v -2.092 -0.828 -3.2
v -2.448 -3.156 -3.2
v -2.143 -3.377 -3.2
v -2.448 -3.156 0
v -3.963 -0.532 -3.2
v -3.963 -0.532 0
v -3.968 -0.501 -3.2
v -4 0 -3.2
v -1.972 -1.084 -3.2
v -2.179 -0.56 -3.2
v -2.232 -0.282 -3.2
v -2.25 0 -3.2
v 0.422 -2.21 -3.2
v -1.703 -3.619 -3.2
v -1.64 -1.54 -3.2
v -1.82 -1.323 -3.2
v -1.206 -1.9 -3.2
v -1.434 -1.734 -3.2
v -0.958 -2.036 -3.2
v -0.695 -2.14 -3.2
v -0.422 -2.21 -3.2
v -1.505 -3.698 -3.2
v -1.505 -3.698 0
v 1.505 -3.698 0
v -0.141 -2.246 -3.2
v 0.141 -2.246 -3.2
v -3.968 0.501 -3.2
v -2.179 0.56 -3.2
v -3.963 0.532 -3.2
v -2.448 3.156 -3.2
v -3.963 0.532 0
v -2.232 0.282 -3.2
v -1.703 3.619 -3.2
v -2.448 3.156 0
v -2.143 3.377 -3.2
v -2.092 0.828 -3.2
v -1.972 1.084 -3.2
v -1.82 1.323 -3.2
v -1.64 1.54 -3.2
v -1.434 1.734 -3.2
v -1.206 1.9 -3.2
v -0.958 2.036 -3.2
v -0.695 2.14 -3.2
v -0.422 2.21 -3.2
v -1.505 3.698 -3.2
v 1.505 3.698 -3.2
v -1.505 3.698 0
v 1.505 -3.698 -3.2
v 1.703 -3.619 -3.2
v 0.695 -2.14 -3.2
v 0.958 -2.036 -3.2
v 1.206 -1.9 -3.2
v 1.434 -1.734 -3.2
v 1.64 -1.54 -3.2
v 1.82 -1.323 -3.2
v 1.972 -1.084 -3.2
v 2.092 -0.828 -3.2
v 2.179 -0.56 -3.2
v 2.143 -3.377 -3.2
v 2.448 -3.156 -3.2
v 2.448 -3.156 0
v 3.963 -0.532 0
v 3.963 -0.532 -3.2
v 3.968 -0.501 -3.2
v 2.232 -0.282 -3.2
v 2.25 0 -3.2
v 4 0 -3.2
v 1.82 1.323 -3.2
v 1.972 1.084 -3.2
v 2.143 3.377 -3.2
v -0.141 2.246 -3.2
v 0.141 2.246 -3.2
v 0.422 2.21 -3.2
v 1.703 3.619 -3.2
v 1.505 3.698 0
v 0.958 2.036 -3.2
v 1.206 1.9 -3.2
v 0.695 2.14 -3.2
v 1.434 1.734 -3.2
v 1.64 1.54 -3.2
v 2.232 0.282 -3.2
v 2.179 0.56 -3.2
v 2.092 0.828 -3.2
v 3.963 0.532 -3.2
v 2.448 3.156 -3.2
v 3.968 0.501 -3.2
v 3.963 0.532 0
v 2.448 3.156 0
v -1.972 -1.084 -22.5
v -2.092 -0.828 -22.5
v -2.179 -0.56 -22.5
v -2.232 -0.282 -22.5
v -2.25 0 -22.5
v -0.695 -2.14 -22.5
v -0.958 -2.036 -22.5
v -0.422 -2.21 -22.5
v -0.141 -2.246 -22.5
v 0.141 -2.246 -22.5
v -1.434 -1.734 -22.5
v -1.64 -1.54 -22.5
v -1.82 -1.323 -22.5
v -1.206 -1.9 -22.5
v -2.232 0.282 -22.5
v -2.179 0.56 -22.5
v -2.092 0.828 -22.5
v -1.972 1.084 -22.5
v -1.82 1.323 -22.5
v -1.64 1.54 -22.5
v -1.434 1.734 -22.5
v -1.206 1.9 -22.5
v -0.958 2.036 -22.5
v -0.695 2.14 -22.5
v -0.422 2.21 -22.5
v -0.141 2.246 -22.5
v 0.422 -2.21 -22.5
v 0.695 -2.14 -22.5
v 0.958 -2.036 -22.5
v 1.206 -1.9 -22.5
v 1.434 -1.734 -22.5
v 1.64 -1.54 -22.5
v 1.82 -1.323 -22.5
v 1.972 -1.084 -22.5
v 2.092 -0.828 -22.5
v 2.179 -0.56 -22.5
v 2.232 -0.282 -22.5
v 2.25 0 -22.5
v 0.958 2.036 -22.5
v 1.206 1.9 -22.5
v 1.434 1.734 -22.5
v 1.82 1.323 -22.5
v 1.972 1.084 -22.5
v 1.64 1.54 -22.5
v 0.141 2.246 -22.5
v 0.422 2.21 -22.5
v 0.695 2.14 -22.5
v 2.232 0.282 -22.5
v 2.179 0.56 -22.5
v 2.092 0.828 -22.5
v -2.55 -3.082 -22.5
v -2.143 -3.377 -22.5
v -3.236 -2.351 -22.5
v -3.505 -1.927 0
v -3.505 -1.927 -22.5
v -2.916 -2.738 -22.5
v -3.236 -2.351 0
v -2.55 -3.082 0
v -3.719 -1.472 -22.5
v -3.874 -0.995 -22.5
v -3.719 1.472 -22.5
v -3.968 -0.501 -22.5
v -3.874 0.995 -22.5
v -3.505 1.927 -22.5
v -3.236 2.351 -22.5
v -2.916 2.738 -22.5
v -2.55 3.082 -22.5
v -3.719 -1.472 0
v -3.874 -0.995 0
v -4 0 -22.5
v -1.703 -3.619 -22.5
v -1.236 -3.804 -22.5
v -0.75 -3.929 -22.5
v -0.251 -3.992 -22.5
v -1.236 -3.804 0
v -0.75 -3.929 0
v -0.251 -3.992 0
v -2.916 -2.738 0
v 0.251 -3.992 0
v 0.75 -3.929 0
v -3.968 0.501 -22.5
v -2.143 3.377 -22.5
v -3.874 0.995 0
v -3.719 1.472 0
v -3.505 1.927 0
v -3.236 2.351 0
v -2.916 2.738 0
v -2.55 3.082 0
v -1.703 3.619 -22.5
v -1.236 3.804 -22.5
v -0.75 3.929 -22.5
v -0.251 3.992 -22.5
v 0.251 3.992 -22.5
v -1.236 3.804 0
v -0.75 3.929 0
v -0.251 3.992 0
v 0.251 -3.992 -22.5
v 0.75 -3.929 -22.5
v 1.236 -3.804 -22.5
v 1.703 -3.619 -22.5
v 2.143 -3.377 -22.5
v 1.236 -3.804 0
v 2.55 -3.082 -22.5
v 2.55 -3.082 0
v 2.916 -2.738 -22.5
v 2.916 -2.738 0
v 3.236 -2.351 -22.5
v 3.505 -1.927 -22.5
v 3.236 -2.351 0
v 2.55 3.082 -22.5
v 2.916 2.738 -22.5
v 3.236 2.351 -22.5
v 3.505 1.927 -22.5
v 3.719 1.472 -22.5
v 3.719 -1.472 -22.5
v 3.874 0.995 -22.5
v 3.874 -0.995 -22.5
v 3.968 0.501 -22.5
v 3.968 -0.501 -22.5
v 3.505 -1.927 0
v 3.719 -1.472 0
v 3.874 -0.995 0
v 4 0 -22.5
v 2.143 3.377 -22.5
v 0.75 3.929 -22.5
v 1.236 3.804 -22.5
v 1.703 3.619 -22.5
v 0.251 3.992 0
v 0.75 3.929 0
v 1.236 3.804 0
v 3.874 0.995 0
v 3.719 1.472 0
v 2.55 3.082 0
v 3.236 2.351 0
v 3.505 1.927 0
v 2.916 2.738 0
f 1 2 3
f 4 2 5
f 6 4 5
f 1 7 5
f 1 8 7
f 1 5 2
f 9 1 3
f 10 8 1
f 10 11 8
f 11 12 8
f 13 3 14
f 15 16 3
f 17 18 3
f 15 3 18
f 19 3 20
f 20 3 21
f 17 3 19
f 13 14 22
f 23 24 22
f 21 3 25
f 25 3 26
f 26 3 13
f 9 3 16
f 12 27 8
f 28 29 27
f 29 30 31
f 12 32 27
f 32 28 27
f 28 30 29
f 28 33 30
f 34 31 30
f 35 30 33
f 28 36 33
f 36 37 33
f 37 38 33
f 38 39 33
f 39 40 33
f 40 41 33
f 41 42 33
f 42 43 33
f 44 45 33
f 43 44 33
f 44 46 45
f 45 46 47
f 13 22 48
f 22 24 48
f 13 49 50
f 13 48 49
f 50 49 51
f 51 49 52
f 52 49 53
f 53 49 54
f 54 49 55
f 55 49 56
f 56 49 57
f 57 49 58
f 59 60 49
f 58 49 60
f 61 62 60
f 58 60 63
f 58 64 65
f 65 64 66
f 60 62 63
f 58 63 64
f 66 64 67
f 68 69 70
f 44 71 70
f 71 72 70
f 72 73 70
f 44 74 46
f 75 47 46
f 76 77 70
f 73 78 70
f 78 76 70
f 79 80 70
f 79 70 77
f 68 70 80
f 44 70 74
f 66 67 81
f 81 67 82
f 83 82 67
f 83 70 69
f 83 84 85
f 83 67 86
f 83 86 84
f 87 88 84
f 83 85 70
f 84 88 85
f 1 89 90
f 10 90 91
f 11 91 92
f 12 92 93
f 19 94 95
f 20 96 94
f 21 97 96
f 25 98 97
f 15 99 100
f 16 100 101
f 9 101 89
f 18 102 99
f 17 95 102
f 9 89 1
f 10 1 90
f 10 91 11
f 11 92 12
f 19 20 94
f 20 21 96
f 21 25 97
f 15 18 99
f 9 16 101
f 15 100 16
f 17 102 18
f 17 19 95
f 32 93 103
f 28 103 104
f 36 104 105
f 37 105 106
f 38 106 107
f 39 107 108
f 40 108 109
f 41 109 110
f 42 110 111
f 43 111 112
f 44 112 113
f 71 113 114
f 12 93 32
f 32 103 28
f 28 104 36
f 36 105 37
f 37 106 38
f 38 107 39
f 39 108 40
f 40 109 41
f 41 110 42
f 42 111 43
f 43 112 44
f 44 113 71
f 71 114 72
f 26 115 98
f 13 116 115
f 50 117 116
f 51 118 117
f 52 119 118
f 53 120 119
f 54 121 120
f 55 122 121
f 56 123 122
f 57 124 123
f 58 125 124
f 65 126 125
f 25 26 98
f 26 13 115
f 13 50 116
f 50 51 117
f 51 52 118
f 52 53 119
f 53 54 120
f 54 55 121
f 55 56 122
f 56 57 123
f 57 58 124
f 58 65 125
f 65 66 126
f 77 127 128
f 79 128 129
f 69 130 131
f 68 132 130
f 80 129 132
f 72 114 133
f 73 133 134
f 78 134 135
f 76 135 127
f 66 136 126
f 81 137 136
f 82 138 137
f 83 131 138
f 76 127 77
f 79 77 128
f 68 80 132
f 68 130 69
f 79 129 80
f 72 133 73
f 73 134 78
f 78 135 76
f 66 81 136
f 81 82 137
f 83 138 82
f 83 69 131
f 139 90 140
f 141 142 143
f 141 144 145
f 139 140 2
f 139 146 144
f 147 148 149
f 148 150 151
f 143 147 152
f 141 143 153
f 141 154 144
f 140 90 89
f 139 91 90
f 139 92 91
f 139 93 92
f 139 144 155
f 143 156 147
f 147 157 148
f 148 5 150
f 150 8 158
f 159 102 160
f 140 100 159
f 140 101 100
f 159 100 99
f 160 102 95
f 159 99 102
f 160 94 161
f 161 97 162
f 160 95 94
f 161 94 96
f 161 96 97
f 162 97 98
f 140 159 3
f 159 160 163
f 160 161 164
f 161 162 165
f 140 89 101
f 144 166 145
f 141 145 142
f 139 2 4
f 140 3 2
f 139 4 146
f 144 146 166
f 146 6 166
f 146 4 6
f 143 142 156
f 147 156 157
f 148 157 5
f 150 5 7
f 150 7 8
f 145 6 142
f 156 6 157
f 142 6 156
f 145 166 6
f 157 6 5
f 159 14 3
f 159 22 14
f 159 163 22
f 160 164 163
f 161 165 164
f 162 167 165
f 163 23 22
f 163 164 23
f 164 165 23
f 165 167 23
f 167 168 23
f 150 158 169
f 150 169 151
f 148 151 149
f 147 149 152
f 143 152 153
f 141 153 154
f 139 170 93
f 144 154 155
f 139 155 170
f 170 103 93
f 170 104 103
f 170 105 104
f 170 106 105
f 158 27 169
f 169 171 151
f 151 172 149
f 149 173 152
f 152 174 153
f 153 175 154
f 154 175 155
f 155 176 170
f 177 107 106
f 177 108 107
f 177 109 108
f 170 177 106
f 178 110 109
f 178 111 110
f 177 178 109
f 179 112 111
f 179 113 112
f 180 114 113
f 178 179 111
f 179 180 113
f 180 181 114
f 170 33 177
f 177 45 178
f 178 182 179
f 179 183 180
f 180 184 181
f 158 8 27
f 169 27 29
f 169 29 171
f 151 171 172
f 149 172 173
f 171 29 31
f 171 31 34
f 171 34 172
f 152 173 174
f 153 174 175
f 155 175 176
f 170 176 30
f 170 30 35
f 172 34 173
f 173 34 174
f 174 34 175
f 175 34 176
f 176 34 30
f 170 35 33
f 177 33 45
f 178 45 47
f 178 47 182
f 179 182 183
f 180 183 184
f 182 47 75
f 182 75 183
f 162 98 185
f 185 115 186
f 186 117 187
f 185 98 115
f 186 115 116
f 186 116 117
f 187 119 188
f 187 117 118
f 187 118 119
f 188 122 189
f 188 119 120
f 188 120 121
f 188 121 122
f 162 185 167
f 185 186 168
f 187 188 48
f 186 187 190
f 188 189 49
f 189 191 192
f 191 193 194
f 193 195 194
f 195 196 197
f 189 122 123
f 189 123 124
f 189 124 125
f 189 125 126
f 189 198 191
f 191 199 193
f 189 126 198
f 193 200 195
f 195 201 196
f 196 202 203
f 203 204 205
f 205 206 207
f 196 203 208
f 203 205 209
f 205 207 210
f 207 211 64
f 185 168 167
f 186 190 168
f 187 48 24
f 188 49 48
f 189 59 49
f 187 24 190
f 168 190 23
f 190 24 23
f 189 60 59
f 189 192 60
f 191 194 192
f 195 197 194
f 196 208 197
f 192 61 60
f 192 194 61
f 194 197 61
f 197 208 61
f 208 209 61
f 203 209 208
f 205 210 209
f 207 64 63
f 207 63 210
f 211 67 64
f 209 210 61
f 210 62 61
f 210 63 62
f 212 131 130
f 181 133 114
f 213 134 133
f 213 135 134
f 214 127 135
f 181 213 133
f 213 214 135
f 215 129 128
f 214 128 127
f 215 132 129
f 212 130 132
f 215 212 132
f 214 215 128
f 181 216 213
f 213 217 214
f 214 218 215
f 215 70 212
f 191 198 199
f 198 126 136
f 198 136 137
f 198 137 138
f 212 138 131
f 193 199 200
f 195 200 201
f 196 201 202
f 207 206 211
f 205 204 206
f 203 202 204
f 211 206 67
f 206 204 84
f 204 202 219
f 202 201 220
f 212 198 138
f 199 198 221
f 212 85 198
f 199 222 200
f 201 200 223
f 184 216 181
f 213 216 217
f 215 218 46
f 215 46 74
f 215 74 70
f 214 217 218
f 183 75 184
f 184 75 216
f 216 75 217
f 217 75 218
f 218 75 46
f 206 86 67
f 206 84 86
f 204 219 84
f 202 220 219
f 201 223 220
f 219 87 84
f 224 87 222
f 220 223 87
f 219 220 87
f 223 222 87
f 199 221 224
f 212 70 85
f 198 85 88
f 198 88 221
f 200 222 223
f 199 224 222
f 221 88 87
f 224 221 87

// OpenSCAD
$fn = 50;

difference() {
	union() {
		translate(v = [0, 0, -22.5]) {
			cylinder(h = 22.5, r = 4.0);
		}
	}
	union() {
		translate(v = [0, 0, 0]) {
			rotate(a = [0, 0, 0]) {
				difference() {
					union() {
						translate(v = [0, 0, -3.2]) {
							linear_extrude(height = 3.2) {
								polygon(points = [[4.2698, 0.0], [2.1349000000000005, 3.697755269078796], [-2.134899999999999, 3.6977552690787965], [-4.2698, 5.228996902999369e-16], [-2.134900000000002, -3.6977552690787956], [2.1348999999999974, -3.697755269078798]]);
							}
						}
					}
					union();
				}
			}
		}
		#translate(v = [0, 0, -100.0]) {
			cylinder(h = 200, r = 2.25);
		}
	}
}
